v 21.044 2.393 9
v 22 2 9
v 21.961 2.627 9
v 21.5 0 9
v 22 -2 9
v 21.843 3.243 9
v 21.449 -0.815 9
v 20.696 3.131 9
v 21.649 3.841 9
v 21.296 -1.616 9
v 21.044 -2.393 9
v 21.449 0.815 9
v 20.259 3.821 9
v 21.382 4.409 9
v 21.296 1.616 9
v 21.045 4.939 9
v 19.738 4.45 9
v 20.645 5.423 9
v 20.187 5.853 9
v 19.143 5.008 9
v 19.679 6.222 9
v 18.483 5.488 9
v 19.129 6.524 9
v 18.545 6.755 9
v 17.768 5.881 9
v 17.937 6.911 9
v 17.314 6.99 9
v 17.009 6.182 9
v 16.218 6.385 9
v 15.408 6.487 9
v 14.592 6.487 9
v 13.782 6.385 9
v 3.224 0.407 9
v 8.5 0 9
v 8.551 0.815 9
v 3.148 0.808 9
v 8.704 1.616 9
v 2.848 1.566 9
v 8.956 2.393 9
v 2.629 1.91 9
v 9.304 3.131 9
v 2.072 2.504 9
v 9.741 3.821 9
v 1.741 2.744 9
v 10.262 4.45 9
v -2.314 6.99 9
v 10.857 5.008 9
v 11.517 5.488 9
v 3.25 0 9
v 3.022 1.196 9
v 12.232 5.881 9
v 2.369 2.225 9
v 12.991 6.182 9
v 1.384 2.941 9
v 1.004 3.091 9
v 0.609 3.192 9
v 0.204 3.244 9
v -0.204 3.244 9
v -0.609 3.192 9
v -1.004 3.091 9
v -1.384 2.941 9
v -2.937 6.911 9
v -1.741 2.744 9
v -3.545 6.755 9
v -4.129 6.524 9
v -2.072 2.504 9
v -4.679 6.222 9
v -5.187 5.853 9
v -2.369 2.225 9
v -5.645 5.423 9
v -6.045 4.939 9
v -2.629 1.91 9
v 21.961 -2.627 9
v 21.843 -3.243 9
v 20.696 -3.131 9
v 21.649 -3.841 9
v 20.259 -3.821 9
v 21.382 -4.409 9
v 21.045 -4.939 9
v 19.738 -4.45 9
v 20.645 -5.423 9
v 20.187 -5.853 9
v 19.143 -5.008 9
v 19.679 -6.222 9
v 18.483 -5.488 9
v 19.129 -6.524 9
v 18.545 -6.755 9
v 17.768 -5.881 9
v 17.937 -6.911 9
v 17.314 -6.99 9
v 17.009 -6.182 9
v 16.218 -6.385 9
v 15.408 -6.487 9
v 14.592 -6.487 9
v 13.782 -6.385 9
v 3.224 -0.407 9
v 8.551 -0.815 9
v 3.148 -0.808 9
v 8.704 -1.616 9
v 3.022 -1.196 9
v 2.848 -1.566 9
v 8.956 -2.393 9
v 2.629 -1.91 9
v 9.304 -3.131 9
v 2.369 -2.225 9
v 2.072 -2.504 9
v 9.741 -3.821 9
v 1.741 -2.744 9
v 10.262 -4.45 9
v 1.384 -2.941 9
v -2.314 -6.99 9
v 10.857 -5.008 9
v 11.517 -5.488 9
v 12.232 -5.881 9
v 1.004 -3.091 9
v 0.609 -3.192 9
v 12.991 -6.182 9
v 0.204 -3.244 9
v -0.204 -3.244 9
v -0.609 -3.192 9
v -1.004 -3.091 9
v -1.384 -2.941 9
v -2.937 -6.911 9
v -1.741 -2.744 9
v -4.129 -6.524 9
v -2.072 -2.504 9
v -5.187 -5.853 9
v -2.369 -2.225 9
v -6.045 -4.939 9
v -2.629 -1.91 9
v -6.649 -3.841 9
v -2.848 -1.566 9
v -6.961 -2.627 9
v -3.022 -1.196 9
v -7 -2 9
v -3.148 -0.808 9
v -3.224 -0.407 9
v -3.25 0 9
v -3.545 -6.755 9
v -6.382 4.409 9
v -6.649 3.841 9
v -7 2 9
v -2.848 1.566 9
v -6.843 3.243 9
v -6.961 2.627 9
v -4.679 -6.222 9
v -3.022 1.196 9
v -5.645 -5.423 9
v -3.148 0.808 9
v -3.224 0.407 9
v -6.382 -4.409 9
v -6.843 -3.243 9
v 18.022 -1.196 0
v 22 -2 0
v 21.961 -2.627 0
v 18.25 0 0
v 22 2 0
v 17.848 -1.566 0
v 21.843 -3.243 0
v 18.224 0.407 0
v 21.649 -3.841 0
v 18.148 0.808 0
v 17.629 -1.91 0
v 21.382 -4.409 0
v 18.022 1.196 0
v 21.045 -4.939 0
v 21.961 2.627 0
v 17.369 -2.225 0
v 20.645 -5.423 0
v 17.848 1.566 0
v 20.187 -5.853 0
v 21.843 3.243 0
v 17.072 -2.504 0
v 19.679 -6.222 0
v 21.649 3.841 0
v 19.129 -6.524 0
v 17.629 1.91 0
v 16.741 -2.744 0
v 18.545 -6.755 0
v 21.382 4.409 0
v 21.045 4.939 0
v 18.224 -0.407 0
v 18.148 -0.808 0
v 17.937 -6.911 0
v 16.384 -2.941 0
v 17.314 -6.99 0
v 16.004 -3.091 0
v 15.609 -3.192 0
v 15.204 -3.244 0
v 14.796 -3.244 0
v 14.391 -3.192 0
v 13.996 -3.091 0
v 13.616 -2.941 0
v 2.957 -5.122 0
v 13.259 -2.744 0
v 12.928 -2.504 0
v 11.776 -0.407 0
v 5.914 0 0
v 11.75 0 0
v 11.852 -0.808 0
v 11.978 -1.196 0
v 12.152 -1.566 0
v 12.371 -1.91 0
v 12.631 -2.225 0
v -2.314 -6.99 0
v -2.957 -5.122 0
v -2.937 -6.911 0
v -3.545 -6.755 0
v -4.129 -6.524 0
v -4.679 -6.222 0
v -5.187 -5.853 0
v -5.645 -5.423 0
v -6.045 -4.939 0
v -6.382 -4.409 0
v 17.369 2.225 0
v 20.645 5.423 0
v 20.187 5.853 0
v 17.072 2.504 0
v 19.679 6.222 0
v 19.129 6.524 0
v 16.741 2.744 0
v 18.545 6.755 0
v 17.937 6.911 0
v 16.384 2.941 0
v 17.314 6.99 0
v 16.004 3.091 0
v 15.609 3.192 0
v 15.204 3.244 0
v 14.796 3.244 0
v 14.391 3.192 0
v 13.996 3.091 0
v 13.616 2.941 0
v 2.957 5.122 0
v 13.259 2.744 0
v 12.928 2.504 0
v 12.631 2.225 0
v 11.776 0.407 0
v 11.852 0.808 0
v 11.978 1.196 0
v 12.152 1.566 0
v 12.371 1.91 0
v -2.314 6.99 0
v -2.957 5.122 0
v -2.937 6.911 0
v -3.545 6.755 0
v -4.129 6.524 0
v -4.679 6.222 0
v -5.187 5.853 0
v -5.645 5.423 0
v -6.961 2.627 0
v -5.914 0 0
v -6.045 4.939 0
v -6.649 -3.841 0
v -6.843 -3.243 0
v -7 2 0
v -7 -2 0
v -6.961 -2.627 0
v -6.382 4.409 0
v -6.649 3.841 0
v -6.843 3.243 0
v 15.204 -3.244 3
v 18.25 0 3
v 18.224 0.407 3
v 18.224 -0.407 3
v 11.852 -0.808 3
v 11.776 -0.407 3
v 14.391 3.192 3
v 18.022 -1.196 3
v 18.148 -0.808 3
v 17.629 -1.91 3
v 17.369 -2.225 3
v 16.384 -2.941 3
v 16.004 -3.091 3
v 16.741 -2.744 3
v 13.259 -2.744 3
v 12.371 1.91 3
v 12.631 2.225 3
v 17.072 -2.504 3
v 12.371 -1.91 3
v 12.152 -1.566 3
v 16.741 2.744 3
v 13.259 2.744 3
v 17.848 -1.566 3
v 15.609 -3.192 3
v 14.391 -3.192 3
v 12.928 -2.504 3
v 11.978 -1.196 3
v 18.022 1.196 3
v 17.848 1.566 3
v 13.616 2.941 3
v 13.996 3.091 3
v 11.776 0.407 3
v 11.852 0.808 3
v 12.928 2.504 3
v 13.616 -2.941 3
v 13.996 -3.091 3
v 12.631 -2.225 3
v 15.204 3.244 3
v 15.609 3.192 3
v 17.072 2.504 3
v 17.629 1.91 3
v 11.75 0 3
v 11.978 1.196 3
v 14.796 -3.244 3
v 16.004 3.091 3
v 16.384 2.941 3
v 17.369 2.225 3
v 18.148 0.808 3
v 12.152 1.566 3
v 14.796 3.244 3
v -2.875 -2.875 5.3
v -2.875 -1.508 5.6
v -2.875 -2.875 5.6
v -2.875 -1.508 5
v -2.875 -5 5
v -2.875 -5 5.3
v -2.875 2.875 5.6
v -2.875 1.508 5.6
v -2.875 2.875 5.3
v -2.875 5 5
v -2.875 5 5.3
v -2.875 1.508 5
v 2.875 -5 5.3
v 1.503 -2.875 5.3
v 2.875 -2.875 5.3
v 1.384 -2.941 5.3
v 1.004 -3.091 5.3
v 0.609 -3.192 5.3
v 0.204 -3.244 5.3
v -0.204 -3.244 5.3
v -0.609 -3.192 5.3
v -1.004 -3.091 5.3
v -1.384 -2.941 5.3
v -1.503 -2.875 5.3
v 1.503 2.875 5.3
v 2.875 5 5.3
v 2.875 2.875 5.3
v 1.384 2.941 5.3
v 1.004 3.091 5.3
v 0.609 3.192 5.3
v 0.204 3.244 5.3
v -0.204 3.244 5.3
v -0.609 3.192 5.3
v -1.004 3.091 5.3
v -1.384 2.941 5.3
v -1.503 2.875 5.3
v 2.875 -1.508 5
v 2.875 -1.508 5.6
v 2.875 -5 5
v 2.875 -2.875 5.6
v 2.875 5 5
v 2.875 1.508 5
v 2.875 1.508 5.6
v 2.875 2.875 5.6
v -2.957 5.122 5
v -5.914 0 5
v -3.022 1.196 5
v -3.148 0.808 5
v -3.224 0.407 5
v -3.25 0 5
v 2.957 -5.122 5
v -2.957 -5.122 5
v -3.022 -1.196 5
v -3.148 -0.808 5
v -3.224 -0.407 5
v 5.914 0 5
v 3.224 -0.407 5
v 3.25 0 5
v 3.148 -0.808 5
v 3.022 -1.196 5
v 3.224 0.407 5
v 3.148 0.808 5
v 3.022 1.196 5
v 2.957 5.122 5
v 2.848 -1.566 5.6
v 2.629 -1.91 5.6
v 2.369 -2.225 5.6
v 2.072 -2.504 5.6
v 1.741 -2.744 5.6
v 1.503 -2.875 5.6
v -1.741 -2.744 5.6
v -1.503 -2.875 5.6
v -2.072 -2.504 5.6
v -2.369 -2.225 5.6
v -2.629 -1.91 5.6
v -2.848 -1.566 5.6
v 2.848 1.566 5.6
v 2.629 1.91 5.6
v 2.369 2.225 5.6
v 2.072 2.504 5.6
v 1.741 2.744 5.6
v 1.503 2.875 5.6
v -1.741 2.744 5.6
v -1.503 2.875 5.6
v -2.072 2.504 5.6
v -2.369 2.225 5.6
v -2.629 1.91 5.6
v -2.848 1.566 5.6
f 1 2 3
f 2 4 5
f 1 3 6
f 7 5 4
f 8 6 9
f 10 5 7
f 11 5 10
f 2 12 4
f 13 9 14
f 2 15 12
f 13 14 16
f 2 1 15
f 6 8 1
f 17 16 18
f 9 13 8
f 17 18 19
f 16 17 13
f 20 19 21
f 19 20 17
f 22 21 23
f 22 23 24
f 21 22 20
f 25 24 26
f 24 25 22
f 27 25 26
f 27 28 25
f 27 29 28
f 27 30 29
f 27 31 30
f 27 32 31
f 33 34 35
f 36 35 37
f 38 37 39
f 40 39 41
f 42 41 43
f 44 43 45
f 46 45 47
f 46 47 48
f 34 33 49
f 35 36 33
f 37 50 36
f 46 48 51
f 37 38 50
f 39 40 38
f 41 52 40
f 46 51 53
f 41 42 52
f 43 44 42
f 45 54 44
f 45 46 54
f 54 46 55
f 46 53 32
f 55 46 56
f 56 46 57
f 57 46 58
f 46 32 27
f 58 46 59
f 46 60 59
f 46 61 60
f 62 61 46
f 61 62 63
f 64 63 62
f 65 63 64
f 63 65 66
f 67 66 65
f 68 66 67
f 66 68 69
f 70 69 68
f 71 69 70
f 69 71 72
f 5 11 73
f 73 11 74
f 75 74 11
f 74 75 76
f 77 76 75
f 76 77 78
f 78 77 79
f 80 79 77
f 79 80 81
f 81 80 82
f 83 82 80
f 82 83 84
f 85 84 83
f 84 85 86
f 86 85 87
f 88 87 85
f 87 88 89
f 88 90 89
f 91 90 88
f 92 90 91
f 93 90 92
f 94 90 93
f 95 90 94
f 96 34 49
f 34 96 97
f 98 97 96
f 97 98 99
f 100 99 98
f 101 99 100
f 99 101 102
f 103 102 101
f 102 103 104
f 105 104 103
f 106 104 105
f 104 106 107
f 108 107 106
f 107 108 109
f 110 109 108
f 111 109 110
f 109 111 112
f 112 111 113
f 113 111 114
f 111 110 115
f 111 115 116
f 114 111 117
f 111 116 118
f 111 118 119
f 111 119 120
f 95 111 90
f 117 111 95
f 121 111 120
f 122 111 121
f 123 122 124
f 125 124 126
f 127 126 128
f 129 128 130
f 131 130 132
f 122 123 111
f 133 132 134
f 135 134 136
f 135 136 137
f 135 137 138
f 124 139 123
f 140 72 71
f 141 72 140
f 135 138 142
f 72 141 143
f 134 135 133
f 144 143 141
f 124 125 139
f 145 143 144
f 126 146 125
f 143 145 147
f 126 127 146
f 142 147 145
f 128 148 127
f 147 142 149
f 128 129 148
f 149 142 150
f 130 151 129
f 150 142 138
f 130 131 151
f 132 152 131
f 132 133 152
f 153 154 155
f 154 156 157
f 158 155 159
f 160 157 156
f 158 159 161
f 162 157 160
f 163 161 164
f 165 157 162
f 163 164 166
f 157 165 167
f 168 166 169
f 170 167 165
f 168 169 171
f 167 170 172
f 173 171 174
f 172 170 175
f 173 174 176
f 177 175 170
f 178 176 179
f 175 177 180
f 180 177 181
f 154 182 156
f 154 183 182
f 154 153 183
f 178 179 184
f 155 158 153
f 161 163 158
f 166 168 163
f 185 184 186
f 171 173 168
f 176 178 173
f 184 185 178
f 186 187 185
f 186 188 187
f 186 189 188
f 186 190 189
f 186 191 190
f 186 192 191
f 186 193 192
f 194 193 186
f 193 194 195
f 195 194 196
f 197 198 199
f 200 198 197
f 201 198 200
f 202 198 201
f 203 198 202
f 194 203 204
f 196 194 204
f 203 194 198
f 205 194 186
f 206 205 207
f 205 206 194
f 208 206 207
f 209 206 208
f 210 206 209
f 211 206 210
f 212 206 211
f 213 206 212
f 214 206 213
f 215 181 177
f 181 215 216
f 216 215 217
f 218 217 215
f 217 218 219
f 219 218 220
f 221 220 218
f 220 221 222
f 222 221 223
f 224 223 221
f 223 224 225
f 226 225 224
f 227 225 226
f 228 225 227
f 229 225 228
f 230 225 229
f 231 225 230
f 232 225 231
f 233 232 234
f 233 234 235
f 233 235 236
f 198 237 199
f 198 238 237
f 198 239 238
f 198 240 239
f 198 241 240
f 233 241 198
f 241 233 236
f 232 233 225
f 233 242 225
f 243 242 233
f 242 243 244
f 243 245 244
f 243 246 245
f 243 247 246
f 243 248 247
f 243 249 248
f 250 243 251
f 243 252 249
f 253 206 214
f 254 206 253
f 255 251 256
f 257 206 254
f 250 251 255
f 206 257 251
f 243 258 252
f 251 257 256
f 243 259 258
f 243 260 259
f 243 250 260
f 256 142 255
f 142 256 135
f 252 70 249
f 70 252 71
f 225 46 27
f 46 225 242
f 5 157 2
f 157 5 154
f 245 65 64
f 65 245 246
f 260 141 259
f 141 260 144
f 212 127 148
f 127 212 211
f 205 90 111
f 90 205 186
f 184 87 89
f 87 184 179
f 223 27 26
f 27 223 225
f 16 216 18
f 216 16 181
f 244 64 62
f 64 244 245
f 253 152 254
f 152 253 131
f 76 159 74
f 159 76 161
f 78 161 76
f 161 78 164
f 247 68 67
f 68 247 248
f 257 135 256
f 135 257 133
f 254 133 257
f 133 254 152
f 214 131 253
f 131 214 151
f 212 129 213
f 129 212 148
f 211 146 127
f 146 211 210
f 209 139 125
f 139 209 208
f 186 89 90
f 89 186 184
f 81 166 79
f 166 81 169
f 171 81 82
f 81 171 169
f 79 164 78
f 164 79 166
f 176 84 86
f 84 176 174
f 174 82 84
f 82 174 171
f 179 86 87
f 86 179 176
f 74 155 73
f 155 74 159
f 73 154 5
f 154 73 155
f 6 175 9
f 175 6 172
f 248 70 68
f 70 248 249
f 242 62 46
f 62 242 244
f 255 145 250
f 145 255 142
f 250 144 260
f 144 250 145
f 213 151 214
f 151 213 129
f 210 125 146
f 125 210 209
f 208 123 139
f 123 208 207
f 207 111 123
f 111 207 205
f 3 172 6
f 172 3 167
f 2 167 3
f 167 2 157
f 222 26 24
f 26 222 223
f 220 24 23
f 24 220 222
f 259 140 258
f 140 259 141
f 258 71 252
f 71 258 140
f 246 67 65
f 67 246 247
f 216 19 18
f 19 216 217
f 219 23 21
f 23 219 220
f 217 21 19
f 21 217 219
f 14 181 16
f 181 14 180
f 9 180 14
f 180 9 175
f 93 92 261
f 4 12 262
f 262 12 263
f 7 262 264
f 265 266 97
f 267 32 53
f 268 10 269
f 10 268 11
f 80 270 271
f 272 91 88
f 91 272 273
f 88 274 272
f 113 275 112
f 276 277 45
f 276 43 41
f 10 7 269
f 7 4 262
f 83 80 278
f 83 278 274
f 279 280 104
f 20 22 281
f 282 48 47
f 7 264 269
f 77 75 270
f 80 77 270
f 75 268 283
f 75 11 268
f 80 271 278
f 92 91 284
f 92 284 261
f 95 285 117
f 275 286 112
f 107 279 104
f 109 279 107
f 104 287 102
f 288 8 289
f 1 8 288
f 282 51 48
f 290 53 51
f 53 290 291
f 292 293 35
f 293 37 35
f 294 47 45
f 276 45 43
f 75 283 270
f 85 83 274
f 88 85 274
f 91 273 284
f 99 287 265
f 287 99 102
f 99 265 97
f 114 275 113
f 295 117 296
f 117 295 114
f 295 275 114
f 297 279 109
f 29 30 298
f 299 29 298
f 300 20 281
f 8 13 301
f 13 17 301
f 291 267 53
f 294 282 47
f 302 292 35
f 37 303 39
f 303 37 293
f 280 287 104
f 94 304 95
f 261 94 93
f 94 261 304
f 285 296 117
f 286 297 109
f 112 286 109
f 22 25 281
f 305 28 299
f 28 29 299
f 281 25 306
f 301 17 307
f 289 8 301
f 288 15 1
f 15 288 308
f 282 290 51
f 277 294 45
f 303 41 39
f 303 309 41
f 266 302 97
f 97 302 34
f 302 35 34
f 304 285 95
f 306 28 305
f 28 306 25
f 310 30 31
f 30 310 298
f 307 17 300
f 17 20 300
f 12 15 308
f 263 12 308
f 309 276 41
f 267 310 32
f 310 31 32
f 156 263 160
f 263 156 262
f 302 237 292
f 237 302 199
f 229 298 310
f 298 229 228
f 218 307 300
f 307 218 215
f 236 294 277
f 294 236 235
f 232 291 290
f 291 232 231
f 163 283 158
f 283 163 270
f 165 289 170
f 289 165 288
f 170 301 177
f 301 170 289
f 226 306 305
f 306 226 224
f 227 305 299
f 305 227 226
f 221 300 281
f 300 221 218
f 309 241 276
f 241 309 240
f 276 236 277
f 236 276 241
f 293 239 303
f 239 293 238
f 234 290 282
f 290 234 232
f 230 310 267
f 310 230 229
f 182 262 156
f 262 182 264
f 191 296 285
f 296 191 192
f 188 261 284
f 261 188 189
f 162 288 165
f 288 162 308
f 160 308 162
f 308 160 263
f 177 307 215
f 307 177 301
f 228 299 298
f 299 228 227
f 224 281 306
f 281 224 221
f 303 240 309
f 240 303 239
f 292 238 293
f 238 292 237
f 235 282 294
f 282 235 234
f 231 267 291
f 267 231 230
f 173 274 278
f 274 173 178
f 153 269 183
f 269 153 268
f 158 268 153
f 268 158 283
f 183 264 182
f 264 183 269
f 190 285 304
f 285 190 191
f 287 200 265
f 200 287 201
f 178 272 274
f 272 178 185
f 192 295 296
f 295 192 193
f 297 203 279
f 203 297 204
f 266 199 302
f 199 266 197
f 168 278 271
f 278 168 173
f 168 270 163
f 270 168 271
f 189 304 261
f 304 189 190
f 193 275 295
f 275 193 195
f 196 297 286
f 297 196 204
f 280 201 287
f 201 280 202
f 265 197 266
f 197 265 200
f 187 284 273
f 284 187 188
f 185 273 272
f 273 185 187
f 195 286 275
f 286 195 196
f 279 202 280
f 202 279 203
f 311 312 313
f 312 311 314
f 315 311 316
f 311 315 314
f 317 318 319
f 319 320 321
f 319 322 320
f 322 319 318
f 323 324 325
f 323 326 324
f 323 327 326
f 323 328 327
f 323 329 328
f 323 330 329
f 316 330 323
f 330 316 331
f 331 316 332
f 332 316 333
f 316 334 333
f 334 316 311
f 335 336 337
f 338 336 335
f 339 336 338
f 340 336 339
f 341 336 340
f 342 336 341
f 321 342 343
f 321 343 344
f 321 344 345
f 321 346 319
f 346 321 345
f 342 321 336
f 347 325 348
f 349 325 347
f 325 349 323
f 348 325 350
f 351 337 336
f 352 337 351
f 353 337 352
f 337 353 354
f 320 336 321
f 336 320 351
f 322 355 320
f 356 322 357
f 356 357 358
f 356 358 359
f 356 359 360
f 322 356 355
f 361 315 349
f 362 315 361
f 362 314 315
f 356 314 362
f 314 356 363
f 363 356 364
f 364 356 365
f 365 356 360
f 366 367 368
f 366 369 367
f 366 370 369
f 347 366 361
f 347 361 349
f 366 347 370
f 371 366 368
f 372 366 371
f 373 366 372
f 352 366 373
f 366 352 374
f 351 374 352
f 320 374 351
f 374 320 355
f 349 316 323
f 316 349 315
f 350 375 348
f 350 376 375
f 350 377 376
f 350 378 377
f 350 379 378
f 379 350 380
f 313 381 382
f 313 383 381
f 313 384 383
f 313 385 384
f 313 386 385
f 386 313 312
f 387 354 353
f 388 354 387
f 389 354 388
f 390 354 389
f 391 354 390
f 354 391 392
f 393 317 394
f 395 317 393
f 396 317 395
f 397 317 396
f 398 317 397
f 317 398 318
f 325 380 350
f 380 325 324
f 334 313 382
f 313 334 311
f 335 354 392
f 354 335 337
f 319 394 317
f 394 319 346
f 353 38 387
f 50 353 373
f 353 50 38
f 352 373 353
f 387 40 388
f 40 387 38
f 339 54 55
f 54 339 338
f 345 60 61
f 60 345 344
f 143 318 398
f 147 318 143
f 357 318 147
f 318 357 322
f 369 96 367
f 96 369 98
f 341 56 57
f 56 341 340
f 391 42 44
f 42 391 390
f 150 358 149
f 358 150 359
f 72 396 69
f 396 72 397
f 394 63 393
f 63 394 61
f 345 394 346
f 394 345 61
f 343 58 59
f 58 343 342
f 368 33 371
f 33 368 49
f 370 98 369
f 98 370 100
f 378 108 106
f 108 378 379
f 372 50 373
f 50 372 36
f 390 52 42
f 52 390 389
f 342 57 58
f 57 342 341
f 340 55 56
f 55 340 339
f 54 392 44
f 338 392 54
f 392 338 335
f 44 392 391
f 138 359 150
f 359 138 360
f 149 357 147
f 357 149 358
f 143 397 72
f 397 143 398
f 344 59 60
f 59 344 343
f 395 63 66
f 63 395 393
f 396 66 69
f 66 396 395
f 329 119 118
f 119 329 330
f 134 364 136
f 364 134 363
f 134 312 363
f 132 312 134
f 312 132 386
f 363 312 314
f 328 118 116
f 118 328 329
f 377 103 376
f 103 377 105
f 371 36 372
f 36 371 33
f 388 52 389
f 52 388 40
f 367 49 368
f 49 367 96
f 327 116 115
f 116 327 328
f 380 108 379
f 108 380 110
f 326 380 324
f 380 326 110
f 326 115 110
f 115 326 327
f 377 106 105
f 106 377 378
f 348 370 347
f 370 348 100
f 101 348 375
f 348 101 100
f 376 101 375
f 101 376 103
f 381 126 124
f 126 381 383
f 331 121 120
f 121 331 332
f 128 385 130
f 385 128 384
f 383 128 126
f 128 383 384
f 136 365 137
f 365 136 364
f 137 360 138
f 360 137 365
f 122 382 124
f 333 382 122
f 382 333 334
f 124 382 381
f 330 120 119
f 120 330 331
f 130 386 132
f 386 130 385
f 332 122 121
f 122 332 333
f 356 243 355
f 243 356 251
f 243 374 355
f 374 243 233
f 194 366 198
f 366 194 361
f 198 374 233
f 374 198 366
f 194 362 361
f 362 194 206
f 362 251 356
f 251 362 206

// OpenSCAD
$fn = 50;


difference() {
	union() {
		cylinder(h = 9, r = 7.0000000000);
		translate(v = [7.5000000000, 0.0000000000, 0]) {
			hull() {
				translate(v = [-9.5000000000, 2.0000000000, 0]) {
					cylinder(h = 9, r = 5);
				}
				translate(v = [9.5000000000, 2.0000000000, 0]) {
					cylinder(h = 9, r = 5);
				}
				translate(v = [-9.5000000000, -2.0000000000, 0]) {
					cylinder(h = 9, r = 5);
				}
				translate(v = [9.5000000000, -2.0000000000, 0]) {
					cylinder(h = 9, r = 5);
				}
			}
		}
		translate(v = [7.5000000000, 0.0000000000, 0]) {
			hull() {
				translate(v = [-9.5000000000, 2.0000000000, 0]) {
					cylinder(h = 9, r = 5);
				}
				translate(v = [9.5000000000, 2.0000000000, 0]) {
					cylinder(h = 9, r = 5);
				}
				translate(v = [-9.5000000000, -2.0000000000, 0]) {
					cylinder(h = 9, r = 5);
				}
				translate(v = [9.5000000000, -2.0000000000, 0]) {
					cylinder(h = 9, r = 5);
				}
			}
		}
	}
	union() {
		translate(v = [15.0000000000, 0.0000000000, 9]) {
			rotate(a = [0, 0, 0]) {
				difference() {
					union() {
						#translate(v = [0, 0, -9.0000000000]) {
							cylinder(h = 9, r = 2.2500000000);
						}
						#translate(v = [0, 0, -6]) {
							cylinder(h = 6, r1 = 3.2500000000, r2 = 6.5000000000);
						}
						#translate(v = [0, 0, -9.0000000000]) {
							cylinder(h = 9, r = 3.2500000000);
						}
						#translate(v = [0, 0, -9.0000000000]) {
							cylinder(h = 9, r = 2.2500000000);
						}
					}
					union();
				}
			}
		}
		translate(v = [15.0000000000, 0.0000000000, 9]) {
			rotate(a = [0, 0, 0]) {
				difference() {
					union() {
						#translate(v = [0, 0, -9.0000000000]) {
							cylinder(h = 9, r = 2.2500000000);
						}
						#translate(v = [0, 0, -6]) {
							cylinder(h = 6, r1 = 3.2500000000, r2 = 6.5000000000);
						}
						#translate(v = [0, 0, -9.0000000000]) {
							cylinder(h = 9, r = 3.2500000000);
						}
						#translate(v = [0, 0, -9.0000000000]) {
							cylinder(h = 9, r = 2.2500000000);
						}
					}
					union();
				}
			}
		}
		translate(v = [0.0000000000, 0.0000000000, 0]) {
			rotate(a = [0, 0, 0]) {
				difference() {
					union() {
						#translate(v = [-2.8750000000, -5.0000000000, -0.3000000000]) {
							cube(size = [5.7500000000, 10, 0.3000000000]);
						}
						#translate(v = [-2.8750000000, -2.8750000000, -0.6000000000]) {
							cube(size = [5.7500000000, 5.7500000000, 0.3000000000]);
						}
						#translate(v = [-2.8750000000, -5.0000000000, 5]) {
							cube(size = [5.7500000000, 10, 0.3000000000]);
						}
						#translate(v = [-2.8750000000, -2.8750000000, 5.3000000000]) {
							cube(size = [5.7500000000, 5.7500000000, 0.3000000000]);
						}
						#translate(v = [0, 0, -100.0000000000]) {
							cylinder(h = 200, r = 3.2500000000);
						}
						#linear_extrude(height = 5) {
							polygon(points = [[5.9142500000, 0.0000000000], [2.9571250000, 5.1218907443], [-2.9571250000, 5.1218907443], [-5.9142500000, 0.0000000000], [-2.9571250000, -5.1218907443], [2.9571250000, -5.1218907443]]);
						}
						#translate(v = [-2.8750000000, -5.0000000000, -0.3000000000]) {
							cube(size = [5.7500000000, 10, 0.3000000000]);
						}
						#translate(v = [-2.8750000000, -2.8750000000, -0.6000000000]) {
							cube(size = [5.7500000000, 5.7500000000, 0.3000000000]);
						}
						#translate(v = [-2.8750000000, -5.0000000000, 5]) {
							cube(size = [5.7500000000, 10, 0.3000000000]);
						}
						#translate(v = [-2.8750000000, -2.8750000000, 5.3000000000]) {
							cube(size = [5.7500000000, 5.7500000000, 0.3000000000]);
						}
						#translate(v = [0, 0, -100.0000000000]) {
							cylinder(h = 200, r = 3.2500000000);
						}
						#translate(v = [-2.8750000000, -5.0000000000, -0.3000000000]) {
							cube(size = [5.7500000000, 10, 0.3000000000]);
						}
						#translate(v = [-2.8750000000, -2.8750000000, -0.6000000000]) {
							cube(size = [5.7500000000, 5.7500000000, 0.3000000000]);
						}
						#translate(v = [-2.8750000000, -5.0000000000, 5]) {
							cube(size = [5.7500000000, 10, 0.3000000000]);
						}
						#translate(v = [-2.8750000000, -2.8750000000, 5.3000000000]) {
							cube(size = [5.7500000000, 5.7500000000, 0.3000000000]);
						}
						#translate(v = [0, 0, -100.0000000000]) {
							cylinder(h = 200, r = 3.2500000000);
						}
					}
					union();
				}
			}
		}
		translate(v = [0, 0, -100]) {
			cylinder(h = 200, r = 3.2500000000);
		}
		translate(v = [0, 0, -100]) {
			cylinder(h = 200, r = 1.8000000000);
		}
	}
}
